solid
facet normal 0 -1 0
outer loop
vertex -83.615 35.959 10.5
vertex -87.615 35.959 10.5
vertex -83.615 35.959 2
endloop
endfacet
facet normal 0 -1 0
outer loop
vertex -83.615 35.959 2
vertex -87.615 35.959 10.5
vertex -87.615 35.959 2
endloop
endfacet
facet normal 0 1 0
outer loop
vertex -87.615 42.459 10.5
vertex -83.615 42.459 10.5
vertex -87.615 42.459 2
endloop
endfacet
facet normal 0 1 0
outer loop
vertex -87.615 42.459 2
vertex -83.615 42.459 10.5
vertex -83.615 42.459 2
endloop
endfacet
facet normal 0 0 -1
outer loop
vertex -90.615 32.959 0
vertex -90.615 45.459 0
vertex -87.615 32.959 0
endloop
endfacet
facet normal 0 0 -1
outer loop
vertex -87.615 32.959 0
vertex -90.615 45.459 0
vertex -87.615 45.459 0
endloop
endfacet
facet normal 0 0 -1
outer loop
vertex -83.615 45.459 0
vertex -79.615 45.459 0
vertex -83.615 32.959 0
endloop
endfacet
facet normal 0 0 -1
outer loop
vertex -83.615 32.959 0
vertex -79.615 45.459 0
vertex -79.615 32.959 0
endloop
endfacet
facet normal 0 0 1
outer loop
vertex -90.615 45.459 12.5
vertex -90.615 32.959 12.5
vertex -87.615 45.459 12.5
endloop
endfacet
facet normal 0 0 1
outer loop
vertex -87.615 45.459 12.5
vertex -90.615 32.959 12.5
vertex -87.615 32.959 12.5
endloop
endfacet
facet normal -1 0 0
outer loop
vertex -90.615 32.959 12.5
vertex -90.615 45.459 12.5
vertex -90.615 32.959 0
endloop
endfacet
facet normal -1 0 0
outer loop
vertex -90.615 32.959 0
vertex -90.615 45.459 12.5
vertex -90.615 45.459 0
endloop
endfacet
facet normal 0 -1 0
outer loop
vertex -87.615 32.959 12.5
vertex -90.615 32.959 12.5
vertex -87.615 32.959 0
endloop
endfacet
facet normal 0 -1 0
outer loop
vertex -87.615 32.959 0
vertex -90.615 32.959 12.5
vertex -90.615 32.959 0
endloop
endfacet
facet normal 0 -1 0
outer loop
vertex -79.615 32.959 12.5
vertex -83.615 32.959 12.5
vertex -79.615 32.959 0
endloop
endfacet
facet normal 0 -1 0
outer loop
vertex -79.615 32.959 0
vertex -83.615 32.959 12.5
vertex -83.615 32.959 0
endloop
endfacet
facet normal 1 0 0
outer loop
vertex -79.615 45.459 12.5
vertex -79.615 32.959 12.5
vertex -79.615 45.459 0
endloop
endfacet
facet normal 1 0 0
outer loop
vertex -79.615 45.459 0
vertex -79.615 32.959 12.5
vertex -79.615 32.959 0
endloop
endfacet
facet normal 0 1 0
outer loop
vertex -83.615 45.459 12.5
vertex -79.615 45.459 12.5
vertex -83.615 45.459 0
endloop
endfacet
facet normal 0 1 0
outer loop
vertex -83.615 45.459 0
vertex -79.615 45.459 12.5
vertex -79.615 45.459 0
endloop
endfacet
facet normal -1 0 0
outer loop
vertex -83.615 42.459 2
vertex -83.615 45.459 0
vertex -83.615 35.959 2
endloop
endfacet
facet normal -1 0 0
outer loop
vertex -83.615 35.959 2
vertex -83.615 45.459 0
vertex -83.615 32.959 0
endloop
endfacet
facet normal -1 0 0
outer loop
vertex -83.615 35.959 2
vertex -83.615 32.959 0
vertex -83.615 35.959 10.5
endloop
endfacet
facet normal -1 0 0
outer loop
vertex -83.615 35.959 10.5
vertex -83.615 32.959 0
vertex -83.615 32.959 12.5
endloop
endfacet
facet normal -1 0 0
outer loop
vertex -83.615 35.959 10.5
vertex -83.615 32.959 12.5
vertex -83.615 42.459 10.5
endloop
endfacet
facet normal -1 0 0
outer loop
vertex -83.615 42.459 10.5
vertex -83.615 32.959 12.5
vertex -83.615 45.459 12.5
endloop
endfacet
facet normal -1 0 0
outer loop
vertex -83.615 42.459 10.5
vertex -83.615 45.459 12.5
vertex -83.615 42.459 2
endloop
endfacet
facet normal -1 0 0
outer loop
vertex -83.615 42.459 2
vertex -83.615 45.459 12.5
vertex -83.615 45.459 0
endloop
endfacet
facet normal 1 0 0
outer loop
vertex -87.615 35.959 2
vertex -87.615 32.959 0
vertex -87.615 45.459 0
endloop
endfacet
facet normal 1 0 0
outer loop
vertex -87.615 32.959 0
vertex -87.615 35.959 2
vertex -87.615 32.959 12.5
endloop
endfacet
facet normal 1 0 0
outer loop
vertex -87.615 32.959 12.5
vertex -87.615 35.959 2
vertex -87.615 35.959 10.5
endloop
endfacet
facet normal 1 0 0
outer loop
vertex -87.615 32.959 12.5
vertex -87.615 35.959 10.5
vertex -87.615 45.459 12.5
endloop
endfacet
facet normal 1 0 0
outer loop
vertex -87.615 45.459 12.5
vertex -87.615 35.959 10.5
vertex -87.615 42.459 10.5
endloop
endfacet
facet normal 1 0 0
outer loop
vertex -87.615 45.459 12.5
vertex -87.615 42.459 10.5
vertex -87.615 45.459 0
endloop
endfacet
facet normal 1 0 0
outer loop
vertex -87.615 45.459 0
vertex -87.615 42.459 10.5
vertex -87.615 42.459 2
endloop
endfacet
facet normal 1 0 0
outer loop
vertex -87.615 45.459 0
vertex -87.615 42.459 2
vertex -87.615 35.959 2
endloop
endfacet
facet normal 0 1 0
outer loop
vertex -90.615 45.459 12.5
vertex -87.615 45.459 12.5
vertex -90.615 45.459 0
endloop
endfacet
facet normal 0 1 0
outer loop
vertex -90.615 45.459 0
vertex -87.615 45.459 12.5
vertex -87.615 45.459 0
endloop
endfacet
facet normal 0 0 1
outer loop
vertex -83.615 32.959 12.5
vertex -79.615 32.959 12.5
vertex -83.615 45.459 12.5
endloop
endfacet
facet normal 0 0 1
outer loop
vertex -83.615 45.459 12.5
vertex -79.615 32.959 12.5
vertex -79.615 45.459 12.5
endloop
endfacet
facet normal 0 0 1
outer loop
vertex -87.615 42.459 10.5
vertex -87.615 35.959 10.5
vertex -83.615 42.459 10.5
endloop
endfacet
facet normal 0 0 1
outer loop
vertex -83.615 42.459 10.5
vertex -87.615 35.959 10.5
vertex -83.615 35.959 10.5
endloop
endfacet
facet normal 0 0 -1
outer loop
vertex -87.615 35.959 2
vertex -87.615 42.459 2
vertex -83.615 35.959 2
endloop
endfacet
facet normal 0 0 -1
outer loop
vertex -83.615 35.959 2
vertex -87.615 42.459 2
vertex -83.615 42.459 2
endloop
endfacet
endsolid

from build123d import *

# Parameters (mm, degrees)
BOSS_EXTRUDE2_DEPTH      = 12.5
SKETCH7_W                = 4
SKETCH7_H                = 2
CUT_EXTRUDE10_DEPTH      = 26
CUT_EXTRUDE11_DEPTH      = 4
CUT_EXTRUDE11_DEPTH_BACK = 10.5


with BuildPart() as part:
    # Sketch1 → Boss-Extrude2 (new body)
    with BuildSketch(Plane.XY):
        Polygon((-90.614577373, 45.459408198), (-87.614577373, 45.459408198), (-87.614577373, 42.459408198), (-83.614577373, 42.459408198), (-83.614577373, 45.459408198), (-79.614577373, 45.459408198), (-79.614577373, 32.959408198), (-83.614577373, 32.959408198), (-83.614577373, 35.959408198), (-87.614577373, 35.959408198), (-87.614577373, 32.959408198), (-90.614577373, 32.959408198), align=None)
    extrude(amount=BOSS_EXTRUDE2_DEPTH)

    # Sketch7 → Cut-Extrude10 (cut)
    with BuildSketch(Plane(origin=(0, 42.459408198, 0), x_dir=(1, 0, 0), z_dir=(0, 1, 0))):
        with Locations((-85.614577373, -11.5)):
            Rectangle(SKETCH7_W, SKETCH7_H)
    extrude(amount=-CUT_EXTRUDE10_DEPTH, mode=Mode.SUBTRACT)

    # Sketch8 → Cut-Extrude11 (cut, two sides)
    with BuildSketch(Plane(origin=(0, 42.459408198, 0), x_dir=(1, 0, 0), z_dir=(0, 1, 0))) as cut_extrude11_sk:
        Polygon((-87.614577373, 39.681644159), (-87.614577373, 0), (-87.614577373, -2), (-83.614577373, -2), (-83.614577373, 0), (-83.614577373, 39.681644159), (-83.614577373, 119.044932478), (-87.614577373, 119.044932478), align=None)
    extrude(amount=CUT_EXTRUDE11_DEPTH, mode=Mode.SUBTRACT)
    extrude(cut_extrude11_sk.sketch, amount=-CUT_EXTRUDE11_DEPTH_BACK, mode=Mode.SUBTRACT)


solid = part.part
